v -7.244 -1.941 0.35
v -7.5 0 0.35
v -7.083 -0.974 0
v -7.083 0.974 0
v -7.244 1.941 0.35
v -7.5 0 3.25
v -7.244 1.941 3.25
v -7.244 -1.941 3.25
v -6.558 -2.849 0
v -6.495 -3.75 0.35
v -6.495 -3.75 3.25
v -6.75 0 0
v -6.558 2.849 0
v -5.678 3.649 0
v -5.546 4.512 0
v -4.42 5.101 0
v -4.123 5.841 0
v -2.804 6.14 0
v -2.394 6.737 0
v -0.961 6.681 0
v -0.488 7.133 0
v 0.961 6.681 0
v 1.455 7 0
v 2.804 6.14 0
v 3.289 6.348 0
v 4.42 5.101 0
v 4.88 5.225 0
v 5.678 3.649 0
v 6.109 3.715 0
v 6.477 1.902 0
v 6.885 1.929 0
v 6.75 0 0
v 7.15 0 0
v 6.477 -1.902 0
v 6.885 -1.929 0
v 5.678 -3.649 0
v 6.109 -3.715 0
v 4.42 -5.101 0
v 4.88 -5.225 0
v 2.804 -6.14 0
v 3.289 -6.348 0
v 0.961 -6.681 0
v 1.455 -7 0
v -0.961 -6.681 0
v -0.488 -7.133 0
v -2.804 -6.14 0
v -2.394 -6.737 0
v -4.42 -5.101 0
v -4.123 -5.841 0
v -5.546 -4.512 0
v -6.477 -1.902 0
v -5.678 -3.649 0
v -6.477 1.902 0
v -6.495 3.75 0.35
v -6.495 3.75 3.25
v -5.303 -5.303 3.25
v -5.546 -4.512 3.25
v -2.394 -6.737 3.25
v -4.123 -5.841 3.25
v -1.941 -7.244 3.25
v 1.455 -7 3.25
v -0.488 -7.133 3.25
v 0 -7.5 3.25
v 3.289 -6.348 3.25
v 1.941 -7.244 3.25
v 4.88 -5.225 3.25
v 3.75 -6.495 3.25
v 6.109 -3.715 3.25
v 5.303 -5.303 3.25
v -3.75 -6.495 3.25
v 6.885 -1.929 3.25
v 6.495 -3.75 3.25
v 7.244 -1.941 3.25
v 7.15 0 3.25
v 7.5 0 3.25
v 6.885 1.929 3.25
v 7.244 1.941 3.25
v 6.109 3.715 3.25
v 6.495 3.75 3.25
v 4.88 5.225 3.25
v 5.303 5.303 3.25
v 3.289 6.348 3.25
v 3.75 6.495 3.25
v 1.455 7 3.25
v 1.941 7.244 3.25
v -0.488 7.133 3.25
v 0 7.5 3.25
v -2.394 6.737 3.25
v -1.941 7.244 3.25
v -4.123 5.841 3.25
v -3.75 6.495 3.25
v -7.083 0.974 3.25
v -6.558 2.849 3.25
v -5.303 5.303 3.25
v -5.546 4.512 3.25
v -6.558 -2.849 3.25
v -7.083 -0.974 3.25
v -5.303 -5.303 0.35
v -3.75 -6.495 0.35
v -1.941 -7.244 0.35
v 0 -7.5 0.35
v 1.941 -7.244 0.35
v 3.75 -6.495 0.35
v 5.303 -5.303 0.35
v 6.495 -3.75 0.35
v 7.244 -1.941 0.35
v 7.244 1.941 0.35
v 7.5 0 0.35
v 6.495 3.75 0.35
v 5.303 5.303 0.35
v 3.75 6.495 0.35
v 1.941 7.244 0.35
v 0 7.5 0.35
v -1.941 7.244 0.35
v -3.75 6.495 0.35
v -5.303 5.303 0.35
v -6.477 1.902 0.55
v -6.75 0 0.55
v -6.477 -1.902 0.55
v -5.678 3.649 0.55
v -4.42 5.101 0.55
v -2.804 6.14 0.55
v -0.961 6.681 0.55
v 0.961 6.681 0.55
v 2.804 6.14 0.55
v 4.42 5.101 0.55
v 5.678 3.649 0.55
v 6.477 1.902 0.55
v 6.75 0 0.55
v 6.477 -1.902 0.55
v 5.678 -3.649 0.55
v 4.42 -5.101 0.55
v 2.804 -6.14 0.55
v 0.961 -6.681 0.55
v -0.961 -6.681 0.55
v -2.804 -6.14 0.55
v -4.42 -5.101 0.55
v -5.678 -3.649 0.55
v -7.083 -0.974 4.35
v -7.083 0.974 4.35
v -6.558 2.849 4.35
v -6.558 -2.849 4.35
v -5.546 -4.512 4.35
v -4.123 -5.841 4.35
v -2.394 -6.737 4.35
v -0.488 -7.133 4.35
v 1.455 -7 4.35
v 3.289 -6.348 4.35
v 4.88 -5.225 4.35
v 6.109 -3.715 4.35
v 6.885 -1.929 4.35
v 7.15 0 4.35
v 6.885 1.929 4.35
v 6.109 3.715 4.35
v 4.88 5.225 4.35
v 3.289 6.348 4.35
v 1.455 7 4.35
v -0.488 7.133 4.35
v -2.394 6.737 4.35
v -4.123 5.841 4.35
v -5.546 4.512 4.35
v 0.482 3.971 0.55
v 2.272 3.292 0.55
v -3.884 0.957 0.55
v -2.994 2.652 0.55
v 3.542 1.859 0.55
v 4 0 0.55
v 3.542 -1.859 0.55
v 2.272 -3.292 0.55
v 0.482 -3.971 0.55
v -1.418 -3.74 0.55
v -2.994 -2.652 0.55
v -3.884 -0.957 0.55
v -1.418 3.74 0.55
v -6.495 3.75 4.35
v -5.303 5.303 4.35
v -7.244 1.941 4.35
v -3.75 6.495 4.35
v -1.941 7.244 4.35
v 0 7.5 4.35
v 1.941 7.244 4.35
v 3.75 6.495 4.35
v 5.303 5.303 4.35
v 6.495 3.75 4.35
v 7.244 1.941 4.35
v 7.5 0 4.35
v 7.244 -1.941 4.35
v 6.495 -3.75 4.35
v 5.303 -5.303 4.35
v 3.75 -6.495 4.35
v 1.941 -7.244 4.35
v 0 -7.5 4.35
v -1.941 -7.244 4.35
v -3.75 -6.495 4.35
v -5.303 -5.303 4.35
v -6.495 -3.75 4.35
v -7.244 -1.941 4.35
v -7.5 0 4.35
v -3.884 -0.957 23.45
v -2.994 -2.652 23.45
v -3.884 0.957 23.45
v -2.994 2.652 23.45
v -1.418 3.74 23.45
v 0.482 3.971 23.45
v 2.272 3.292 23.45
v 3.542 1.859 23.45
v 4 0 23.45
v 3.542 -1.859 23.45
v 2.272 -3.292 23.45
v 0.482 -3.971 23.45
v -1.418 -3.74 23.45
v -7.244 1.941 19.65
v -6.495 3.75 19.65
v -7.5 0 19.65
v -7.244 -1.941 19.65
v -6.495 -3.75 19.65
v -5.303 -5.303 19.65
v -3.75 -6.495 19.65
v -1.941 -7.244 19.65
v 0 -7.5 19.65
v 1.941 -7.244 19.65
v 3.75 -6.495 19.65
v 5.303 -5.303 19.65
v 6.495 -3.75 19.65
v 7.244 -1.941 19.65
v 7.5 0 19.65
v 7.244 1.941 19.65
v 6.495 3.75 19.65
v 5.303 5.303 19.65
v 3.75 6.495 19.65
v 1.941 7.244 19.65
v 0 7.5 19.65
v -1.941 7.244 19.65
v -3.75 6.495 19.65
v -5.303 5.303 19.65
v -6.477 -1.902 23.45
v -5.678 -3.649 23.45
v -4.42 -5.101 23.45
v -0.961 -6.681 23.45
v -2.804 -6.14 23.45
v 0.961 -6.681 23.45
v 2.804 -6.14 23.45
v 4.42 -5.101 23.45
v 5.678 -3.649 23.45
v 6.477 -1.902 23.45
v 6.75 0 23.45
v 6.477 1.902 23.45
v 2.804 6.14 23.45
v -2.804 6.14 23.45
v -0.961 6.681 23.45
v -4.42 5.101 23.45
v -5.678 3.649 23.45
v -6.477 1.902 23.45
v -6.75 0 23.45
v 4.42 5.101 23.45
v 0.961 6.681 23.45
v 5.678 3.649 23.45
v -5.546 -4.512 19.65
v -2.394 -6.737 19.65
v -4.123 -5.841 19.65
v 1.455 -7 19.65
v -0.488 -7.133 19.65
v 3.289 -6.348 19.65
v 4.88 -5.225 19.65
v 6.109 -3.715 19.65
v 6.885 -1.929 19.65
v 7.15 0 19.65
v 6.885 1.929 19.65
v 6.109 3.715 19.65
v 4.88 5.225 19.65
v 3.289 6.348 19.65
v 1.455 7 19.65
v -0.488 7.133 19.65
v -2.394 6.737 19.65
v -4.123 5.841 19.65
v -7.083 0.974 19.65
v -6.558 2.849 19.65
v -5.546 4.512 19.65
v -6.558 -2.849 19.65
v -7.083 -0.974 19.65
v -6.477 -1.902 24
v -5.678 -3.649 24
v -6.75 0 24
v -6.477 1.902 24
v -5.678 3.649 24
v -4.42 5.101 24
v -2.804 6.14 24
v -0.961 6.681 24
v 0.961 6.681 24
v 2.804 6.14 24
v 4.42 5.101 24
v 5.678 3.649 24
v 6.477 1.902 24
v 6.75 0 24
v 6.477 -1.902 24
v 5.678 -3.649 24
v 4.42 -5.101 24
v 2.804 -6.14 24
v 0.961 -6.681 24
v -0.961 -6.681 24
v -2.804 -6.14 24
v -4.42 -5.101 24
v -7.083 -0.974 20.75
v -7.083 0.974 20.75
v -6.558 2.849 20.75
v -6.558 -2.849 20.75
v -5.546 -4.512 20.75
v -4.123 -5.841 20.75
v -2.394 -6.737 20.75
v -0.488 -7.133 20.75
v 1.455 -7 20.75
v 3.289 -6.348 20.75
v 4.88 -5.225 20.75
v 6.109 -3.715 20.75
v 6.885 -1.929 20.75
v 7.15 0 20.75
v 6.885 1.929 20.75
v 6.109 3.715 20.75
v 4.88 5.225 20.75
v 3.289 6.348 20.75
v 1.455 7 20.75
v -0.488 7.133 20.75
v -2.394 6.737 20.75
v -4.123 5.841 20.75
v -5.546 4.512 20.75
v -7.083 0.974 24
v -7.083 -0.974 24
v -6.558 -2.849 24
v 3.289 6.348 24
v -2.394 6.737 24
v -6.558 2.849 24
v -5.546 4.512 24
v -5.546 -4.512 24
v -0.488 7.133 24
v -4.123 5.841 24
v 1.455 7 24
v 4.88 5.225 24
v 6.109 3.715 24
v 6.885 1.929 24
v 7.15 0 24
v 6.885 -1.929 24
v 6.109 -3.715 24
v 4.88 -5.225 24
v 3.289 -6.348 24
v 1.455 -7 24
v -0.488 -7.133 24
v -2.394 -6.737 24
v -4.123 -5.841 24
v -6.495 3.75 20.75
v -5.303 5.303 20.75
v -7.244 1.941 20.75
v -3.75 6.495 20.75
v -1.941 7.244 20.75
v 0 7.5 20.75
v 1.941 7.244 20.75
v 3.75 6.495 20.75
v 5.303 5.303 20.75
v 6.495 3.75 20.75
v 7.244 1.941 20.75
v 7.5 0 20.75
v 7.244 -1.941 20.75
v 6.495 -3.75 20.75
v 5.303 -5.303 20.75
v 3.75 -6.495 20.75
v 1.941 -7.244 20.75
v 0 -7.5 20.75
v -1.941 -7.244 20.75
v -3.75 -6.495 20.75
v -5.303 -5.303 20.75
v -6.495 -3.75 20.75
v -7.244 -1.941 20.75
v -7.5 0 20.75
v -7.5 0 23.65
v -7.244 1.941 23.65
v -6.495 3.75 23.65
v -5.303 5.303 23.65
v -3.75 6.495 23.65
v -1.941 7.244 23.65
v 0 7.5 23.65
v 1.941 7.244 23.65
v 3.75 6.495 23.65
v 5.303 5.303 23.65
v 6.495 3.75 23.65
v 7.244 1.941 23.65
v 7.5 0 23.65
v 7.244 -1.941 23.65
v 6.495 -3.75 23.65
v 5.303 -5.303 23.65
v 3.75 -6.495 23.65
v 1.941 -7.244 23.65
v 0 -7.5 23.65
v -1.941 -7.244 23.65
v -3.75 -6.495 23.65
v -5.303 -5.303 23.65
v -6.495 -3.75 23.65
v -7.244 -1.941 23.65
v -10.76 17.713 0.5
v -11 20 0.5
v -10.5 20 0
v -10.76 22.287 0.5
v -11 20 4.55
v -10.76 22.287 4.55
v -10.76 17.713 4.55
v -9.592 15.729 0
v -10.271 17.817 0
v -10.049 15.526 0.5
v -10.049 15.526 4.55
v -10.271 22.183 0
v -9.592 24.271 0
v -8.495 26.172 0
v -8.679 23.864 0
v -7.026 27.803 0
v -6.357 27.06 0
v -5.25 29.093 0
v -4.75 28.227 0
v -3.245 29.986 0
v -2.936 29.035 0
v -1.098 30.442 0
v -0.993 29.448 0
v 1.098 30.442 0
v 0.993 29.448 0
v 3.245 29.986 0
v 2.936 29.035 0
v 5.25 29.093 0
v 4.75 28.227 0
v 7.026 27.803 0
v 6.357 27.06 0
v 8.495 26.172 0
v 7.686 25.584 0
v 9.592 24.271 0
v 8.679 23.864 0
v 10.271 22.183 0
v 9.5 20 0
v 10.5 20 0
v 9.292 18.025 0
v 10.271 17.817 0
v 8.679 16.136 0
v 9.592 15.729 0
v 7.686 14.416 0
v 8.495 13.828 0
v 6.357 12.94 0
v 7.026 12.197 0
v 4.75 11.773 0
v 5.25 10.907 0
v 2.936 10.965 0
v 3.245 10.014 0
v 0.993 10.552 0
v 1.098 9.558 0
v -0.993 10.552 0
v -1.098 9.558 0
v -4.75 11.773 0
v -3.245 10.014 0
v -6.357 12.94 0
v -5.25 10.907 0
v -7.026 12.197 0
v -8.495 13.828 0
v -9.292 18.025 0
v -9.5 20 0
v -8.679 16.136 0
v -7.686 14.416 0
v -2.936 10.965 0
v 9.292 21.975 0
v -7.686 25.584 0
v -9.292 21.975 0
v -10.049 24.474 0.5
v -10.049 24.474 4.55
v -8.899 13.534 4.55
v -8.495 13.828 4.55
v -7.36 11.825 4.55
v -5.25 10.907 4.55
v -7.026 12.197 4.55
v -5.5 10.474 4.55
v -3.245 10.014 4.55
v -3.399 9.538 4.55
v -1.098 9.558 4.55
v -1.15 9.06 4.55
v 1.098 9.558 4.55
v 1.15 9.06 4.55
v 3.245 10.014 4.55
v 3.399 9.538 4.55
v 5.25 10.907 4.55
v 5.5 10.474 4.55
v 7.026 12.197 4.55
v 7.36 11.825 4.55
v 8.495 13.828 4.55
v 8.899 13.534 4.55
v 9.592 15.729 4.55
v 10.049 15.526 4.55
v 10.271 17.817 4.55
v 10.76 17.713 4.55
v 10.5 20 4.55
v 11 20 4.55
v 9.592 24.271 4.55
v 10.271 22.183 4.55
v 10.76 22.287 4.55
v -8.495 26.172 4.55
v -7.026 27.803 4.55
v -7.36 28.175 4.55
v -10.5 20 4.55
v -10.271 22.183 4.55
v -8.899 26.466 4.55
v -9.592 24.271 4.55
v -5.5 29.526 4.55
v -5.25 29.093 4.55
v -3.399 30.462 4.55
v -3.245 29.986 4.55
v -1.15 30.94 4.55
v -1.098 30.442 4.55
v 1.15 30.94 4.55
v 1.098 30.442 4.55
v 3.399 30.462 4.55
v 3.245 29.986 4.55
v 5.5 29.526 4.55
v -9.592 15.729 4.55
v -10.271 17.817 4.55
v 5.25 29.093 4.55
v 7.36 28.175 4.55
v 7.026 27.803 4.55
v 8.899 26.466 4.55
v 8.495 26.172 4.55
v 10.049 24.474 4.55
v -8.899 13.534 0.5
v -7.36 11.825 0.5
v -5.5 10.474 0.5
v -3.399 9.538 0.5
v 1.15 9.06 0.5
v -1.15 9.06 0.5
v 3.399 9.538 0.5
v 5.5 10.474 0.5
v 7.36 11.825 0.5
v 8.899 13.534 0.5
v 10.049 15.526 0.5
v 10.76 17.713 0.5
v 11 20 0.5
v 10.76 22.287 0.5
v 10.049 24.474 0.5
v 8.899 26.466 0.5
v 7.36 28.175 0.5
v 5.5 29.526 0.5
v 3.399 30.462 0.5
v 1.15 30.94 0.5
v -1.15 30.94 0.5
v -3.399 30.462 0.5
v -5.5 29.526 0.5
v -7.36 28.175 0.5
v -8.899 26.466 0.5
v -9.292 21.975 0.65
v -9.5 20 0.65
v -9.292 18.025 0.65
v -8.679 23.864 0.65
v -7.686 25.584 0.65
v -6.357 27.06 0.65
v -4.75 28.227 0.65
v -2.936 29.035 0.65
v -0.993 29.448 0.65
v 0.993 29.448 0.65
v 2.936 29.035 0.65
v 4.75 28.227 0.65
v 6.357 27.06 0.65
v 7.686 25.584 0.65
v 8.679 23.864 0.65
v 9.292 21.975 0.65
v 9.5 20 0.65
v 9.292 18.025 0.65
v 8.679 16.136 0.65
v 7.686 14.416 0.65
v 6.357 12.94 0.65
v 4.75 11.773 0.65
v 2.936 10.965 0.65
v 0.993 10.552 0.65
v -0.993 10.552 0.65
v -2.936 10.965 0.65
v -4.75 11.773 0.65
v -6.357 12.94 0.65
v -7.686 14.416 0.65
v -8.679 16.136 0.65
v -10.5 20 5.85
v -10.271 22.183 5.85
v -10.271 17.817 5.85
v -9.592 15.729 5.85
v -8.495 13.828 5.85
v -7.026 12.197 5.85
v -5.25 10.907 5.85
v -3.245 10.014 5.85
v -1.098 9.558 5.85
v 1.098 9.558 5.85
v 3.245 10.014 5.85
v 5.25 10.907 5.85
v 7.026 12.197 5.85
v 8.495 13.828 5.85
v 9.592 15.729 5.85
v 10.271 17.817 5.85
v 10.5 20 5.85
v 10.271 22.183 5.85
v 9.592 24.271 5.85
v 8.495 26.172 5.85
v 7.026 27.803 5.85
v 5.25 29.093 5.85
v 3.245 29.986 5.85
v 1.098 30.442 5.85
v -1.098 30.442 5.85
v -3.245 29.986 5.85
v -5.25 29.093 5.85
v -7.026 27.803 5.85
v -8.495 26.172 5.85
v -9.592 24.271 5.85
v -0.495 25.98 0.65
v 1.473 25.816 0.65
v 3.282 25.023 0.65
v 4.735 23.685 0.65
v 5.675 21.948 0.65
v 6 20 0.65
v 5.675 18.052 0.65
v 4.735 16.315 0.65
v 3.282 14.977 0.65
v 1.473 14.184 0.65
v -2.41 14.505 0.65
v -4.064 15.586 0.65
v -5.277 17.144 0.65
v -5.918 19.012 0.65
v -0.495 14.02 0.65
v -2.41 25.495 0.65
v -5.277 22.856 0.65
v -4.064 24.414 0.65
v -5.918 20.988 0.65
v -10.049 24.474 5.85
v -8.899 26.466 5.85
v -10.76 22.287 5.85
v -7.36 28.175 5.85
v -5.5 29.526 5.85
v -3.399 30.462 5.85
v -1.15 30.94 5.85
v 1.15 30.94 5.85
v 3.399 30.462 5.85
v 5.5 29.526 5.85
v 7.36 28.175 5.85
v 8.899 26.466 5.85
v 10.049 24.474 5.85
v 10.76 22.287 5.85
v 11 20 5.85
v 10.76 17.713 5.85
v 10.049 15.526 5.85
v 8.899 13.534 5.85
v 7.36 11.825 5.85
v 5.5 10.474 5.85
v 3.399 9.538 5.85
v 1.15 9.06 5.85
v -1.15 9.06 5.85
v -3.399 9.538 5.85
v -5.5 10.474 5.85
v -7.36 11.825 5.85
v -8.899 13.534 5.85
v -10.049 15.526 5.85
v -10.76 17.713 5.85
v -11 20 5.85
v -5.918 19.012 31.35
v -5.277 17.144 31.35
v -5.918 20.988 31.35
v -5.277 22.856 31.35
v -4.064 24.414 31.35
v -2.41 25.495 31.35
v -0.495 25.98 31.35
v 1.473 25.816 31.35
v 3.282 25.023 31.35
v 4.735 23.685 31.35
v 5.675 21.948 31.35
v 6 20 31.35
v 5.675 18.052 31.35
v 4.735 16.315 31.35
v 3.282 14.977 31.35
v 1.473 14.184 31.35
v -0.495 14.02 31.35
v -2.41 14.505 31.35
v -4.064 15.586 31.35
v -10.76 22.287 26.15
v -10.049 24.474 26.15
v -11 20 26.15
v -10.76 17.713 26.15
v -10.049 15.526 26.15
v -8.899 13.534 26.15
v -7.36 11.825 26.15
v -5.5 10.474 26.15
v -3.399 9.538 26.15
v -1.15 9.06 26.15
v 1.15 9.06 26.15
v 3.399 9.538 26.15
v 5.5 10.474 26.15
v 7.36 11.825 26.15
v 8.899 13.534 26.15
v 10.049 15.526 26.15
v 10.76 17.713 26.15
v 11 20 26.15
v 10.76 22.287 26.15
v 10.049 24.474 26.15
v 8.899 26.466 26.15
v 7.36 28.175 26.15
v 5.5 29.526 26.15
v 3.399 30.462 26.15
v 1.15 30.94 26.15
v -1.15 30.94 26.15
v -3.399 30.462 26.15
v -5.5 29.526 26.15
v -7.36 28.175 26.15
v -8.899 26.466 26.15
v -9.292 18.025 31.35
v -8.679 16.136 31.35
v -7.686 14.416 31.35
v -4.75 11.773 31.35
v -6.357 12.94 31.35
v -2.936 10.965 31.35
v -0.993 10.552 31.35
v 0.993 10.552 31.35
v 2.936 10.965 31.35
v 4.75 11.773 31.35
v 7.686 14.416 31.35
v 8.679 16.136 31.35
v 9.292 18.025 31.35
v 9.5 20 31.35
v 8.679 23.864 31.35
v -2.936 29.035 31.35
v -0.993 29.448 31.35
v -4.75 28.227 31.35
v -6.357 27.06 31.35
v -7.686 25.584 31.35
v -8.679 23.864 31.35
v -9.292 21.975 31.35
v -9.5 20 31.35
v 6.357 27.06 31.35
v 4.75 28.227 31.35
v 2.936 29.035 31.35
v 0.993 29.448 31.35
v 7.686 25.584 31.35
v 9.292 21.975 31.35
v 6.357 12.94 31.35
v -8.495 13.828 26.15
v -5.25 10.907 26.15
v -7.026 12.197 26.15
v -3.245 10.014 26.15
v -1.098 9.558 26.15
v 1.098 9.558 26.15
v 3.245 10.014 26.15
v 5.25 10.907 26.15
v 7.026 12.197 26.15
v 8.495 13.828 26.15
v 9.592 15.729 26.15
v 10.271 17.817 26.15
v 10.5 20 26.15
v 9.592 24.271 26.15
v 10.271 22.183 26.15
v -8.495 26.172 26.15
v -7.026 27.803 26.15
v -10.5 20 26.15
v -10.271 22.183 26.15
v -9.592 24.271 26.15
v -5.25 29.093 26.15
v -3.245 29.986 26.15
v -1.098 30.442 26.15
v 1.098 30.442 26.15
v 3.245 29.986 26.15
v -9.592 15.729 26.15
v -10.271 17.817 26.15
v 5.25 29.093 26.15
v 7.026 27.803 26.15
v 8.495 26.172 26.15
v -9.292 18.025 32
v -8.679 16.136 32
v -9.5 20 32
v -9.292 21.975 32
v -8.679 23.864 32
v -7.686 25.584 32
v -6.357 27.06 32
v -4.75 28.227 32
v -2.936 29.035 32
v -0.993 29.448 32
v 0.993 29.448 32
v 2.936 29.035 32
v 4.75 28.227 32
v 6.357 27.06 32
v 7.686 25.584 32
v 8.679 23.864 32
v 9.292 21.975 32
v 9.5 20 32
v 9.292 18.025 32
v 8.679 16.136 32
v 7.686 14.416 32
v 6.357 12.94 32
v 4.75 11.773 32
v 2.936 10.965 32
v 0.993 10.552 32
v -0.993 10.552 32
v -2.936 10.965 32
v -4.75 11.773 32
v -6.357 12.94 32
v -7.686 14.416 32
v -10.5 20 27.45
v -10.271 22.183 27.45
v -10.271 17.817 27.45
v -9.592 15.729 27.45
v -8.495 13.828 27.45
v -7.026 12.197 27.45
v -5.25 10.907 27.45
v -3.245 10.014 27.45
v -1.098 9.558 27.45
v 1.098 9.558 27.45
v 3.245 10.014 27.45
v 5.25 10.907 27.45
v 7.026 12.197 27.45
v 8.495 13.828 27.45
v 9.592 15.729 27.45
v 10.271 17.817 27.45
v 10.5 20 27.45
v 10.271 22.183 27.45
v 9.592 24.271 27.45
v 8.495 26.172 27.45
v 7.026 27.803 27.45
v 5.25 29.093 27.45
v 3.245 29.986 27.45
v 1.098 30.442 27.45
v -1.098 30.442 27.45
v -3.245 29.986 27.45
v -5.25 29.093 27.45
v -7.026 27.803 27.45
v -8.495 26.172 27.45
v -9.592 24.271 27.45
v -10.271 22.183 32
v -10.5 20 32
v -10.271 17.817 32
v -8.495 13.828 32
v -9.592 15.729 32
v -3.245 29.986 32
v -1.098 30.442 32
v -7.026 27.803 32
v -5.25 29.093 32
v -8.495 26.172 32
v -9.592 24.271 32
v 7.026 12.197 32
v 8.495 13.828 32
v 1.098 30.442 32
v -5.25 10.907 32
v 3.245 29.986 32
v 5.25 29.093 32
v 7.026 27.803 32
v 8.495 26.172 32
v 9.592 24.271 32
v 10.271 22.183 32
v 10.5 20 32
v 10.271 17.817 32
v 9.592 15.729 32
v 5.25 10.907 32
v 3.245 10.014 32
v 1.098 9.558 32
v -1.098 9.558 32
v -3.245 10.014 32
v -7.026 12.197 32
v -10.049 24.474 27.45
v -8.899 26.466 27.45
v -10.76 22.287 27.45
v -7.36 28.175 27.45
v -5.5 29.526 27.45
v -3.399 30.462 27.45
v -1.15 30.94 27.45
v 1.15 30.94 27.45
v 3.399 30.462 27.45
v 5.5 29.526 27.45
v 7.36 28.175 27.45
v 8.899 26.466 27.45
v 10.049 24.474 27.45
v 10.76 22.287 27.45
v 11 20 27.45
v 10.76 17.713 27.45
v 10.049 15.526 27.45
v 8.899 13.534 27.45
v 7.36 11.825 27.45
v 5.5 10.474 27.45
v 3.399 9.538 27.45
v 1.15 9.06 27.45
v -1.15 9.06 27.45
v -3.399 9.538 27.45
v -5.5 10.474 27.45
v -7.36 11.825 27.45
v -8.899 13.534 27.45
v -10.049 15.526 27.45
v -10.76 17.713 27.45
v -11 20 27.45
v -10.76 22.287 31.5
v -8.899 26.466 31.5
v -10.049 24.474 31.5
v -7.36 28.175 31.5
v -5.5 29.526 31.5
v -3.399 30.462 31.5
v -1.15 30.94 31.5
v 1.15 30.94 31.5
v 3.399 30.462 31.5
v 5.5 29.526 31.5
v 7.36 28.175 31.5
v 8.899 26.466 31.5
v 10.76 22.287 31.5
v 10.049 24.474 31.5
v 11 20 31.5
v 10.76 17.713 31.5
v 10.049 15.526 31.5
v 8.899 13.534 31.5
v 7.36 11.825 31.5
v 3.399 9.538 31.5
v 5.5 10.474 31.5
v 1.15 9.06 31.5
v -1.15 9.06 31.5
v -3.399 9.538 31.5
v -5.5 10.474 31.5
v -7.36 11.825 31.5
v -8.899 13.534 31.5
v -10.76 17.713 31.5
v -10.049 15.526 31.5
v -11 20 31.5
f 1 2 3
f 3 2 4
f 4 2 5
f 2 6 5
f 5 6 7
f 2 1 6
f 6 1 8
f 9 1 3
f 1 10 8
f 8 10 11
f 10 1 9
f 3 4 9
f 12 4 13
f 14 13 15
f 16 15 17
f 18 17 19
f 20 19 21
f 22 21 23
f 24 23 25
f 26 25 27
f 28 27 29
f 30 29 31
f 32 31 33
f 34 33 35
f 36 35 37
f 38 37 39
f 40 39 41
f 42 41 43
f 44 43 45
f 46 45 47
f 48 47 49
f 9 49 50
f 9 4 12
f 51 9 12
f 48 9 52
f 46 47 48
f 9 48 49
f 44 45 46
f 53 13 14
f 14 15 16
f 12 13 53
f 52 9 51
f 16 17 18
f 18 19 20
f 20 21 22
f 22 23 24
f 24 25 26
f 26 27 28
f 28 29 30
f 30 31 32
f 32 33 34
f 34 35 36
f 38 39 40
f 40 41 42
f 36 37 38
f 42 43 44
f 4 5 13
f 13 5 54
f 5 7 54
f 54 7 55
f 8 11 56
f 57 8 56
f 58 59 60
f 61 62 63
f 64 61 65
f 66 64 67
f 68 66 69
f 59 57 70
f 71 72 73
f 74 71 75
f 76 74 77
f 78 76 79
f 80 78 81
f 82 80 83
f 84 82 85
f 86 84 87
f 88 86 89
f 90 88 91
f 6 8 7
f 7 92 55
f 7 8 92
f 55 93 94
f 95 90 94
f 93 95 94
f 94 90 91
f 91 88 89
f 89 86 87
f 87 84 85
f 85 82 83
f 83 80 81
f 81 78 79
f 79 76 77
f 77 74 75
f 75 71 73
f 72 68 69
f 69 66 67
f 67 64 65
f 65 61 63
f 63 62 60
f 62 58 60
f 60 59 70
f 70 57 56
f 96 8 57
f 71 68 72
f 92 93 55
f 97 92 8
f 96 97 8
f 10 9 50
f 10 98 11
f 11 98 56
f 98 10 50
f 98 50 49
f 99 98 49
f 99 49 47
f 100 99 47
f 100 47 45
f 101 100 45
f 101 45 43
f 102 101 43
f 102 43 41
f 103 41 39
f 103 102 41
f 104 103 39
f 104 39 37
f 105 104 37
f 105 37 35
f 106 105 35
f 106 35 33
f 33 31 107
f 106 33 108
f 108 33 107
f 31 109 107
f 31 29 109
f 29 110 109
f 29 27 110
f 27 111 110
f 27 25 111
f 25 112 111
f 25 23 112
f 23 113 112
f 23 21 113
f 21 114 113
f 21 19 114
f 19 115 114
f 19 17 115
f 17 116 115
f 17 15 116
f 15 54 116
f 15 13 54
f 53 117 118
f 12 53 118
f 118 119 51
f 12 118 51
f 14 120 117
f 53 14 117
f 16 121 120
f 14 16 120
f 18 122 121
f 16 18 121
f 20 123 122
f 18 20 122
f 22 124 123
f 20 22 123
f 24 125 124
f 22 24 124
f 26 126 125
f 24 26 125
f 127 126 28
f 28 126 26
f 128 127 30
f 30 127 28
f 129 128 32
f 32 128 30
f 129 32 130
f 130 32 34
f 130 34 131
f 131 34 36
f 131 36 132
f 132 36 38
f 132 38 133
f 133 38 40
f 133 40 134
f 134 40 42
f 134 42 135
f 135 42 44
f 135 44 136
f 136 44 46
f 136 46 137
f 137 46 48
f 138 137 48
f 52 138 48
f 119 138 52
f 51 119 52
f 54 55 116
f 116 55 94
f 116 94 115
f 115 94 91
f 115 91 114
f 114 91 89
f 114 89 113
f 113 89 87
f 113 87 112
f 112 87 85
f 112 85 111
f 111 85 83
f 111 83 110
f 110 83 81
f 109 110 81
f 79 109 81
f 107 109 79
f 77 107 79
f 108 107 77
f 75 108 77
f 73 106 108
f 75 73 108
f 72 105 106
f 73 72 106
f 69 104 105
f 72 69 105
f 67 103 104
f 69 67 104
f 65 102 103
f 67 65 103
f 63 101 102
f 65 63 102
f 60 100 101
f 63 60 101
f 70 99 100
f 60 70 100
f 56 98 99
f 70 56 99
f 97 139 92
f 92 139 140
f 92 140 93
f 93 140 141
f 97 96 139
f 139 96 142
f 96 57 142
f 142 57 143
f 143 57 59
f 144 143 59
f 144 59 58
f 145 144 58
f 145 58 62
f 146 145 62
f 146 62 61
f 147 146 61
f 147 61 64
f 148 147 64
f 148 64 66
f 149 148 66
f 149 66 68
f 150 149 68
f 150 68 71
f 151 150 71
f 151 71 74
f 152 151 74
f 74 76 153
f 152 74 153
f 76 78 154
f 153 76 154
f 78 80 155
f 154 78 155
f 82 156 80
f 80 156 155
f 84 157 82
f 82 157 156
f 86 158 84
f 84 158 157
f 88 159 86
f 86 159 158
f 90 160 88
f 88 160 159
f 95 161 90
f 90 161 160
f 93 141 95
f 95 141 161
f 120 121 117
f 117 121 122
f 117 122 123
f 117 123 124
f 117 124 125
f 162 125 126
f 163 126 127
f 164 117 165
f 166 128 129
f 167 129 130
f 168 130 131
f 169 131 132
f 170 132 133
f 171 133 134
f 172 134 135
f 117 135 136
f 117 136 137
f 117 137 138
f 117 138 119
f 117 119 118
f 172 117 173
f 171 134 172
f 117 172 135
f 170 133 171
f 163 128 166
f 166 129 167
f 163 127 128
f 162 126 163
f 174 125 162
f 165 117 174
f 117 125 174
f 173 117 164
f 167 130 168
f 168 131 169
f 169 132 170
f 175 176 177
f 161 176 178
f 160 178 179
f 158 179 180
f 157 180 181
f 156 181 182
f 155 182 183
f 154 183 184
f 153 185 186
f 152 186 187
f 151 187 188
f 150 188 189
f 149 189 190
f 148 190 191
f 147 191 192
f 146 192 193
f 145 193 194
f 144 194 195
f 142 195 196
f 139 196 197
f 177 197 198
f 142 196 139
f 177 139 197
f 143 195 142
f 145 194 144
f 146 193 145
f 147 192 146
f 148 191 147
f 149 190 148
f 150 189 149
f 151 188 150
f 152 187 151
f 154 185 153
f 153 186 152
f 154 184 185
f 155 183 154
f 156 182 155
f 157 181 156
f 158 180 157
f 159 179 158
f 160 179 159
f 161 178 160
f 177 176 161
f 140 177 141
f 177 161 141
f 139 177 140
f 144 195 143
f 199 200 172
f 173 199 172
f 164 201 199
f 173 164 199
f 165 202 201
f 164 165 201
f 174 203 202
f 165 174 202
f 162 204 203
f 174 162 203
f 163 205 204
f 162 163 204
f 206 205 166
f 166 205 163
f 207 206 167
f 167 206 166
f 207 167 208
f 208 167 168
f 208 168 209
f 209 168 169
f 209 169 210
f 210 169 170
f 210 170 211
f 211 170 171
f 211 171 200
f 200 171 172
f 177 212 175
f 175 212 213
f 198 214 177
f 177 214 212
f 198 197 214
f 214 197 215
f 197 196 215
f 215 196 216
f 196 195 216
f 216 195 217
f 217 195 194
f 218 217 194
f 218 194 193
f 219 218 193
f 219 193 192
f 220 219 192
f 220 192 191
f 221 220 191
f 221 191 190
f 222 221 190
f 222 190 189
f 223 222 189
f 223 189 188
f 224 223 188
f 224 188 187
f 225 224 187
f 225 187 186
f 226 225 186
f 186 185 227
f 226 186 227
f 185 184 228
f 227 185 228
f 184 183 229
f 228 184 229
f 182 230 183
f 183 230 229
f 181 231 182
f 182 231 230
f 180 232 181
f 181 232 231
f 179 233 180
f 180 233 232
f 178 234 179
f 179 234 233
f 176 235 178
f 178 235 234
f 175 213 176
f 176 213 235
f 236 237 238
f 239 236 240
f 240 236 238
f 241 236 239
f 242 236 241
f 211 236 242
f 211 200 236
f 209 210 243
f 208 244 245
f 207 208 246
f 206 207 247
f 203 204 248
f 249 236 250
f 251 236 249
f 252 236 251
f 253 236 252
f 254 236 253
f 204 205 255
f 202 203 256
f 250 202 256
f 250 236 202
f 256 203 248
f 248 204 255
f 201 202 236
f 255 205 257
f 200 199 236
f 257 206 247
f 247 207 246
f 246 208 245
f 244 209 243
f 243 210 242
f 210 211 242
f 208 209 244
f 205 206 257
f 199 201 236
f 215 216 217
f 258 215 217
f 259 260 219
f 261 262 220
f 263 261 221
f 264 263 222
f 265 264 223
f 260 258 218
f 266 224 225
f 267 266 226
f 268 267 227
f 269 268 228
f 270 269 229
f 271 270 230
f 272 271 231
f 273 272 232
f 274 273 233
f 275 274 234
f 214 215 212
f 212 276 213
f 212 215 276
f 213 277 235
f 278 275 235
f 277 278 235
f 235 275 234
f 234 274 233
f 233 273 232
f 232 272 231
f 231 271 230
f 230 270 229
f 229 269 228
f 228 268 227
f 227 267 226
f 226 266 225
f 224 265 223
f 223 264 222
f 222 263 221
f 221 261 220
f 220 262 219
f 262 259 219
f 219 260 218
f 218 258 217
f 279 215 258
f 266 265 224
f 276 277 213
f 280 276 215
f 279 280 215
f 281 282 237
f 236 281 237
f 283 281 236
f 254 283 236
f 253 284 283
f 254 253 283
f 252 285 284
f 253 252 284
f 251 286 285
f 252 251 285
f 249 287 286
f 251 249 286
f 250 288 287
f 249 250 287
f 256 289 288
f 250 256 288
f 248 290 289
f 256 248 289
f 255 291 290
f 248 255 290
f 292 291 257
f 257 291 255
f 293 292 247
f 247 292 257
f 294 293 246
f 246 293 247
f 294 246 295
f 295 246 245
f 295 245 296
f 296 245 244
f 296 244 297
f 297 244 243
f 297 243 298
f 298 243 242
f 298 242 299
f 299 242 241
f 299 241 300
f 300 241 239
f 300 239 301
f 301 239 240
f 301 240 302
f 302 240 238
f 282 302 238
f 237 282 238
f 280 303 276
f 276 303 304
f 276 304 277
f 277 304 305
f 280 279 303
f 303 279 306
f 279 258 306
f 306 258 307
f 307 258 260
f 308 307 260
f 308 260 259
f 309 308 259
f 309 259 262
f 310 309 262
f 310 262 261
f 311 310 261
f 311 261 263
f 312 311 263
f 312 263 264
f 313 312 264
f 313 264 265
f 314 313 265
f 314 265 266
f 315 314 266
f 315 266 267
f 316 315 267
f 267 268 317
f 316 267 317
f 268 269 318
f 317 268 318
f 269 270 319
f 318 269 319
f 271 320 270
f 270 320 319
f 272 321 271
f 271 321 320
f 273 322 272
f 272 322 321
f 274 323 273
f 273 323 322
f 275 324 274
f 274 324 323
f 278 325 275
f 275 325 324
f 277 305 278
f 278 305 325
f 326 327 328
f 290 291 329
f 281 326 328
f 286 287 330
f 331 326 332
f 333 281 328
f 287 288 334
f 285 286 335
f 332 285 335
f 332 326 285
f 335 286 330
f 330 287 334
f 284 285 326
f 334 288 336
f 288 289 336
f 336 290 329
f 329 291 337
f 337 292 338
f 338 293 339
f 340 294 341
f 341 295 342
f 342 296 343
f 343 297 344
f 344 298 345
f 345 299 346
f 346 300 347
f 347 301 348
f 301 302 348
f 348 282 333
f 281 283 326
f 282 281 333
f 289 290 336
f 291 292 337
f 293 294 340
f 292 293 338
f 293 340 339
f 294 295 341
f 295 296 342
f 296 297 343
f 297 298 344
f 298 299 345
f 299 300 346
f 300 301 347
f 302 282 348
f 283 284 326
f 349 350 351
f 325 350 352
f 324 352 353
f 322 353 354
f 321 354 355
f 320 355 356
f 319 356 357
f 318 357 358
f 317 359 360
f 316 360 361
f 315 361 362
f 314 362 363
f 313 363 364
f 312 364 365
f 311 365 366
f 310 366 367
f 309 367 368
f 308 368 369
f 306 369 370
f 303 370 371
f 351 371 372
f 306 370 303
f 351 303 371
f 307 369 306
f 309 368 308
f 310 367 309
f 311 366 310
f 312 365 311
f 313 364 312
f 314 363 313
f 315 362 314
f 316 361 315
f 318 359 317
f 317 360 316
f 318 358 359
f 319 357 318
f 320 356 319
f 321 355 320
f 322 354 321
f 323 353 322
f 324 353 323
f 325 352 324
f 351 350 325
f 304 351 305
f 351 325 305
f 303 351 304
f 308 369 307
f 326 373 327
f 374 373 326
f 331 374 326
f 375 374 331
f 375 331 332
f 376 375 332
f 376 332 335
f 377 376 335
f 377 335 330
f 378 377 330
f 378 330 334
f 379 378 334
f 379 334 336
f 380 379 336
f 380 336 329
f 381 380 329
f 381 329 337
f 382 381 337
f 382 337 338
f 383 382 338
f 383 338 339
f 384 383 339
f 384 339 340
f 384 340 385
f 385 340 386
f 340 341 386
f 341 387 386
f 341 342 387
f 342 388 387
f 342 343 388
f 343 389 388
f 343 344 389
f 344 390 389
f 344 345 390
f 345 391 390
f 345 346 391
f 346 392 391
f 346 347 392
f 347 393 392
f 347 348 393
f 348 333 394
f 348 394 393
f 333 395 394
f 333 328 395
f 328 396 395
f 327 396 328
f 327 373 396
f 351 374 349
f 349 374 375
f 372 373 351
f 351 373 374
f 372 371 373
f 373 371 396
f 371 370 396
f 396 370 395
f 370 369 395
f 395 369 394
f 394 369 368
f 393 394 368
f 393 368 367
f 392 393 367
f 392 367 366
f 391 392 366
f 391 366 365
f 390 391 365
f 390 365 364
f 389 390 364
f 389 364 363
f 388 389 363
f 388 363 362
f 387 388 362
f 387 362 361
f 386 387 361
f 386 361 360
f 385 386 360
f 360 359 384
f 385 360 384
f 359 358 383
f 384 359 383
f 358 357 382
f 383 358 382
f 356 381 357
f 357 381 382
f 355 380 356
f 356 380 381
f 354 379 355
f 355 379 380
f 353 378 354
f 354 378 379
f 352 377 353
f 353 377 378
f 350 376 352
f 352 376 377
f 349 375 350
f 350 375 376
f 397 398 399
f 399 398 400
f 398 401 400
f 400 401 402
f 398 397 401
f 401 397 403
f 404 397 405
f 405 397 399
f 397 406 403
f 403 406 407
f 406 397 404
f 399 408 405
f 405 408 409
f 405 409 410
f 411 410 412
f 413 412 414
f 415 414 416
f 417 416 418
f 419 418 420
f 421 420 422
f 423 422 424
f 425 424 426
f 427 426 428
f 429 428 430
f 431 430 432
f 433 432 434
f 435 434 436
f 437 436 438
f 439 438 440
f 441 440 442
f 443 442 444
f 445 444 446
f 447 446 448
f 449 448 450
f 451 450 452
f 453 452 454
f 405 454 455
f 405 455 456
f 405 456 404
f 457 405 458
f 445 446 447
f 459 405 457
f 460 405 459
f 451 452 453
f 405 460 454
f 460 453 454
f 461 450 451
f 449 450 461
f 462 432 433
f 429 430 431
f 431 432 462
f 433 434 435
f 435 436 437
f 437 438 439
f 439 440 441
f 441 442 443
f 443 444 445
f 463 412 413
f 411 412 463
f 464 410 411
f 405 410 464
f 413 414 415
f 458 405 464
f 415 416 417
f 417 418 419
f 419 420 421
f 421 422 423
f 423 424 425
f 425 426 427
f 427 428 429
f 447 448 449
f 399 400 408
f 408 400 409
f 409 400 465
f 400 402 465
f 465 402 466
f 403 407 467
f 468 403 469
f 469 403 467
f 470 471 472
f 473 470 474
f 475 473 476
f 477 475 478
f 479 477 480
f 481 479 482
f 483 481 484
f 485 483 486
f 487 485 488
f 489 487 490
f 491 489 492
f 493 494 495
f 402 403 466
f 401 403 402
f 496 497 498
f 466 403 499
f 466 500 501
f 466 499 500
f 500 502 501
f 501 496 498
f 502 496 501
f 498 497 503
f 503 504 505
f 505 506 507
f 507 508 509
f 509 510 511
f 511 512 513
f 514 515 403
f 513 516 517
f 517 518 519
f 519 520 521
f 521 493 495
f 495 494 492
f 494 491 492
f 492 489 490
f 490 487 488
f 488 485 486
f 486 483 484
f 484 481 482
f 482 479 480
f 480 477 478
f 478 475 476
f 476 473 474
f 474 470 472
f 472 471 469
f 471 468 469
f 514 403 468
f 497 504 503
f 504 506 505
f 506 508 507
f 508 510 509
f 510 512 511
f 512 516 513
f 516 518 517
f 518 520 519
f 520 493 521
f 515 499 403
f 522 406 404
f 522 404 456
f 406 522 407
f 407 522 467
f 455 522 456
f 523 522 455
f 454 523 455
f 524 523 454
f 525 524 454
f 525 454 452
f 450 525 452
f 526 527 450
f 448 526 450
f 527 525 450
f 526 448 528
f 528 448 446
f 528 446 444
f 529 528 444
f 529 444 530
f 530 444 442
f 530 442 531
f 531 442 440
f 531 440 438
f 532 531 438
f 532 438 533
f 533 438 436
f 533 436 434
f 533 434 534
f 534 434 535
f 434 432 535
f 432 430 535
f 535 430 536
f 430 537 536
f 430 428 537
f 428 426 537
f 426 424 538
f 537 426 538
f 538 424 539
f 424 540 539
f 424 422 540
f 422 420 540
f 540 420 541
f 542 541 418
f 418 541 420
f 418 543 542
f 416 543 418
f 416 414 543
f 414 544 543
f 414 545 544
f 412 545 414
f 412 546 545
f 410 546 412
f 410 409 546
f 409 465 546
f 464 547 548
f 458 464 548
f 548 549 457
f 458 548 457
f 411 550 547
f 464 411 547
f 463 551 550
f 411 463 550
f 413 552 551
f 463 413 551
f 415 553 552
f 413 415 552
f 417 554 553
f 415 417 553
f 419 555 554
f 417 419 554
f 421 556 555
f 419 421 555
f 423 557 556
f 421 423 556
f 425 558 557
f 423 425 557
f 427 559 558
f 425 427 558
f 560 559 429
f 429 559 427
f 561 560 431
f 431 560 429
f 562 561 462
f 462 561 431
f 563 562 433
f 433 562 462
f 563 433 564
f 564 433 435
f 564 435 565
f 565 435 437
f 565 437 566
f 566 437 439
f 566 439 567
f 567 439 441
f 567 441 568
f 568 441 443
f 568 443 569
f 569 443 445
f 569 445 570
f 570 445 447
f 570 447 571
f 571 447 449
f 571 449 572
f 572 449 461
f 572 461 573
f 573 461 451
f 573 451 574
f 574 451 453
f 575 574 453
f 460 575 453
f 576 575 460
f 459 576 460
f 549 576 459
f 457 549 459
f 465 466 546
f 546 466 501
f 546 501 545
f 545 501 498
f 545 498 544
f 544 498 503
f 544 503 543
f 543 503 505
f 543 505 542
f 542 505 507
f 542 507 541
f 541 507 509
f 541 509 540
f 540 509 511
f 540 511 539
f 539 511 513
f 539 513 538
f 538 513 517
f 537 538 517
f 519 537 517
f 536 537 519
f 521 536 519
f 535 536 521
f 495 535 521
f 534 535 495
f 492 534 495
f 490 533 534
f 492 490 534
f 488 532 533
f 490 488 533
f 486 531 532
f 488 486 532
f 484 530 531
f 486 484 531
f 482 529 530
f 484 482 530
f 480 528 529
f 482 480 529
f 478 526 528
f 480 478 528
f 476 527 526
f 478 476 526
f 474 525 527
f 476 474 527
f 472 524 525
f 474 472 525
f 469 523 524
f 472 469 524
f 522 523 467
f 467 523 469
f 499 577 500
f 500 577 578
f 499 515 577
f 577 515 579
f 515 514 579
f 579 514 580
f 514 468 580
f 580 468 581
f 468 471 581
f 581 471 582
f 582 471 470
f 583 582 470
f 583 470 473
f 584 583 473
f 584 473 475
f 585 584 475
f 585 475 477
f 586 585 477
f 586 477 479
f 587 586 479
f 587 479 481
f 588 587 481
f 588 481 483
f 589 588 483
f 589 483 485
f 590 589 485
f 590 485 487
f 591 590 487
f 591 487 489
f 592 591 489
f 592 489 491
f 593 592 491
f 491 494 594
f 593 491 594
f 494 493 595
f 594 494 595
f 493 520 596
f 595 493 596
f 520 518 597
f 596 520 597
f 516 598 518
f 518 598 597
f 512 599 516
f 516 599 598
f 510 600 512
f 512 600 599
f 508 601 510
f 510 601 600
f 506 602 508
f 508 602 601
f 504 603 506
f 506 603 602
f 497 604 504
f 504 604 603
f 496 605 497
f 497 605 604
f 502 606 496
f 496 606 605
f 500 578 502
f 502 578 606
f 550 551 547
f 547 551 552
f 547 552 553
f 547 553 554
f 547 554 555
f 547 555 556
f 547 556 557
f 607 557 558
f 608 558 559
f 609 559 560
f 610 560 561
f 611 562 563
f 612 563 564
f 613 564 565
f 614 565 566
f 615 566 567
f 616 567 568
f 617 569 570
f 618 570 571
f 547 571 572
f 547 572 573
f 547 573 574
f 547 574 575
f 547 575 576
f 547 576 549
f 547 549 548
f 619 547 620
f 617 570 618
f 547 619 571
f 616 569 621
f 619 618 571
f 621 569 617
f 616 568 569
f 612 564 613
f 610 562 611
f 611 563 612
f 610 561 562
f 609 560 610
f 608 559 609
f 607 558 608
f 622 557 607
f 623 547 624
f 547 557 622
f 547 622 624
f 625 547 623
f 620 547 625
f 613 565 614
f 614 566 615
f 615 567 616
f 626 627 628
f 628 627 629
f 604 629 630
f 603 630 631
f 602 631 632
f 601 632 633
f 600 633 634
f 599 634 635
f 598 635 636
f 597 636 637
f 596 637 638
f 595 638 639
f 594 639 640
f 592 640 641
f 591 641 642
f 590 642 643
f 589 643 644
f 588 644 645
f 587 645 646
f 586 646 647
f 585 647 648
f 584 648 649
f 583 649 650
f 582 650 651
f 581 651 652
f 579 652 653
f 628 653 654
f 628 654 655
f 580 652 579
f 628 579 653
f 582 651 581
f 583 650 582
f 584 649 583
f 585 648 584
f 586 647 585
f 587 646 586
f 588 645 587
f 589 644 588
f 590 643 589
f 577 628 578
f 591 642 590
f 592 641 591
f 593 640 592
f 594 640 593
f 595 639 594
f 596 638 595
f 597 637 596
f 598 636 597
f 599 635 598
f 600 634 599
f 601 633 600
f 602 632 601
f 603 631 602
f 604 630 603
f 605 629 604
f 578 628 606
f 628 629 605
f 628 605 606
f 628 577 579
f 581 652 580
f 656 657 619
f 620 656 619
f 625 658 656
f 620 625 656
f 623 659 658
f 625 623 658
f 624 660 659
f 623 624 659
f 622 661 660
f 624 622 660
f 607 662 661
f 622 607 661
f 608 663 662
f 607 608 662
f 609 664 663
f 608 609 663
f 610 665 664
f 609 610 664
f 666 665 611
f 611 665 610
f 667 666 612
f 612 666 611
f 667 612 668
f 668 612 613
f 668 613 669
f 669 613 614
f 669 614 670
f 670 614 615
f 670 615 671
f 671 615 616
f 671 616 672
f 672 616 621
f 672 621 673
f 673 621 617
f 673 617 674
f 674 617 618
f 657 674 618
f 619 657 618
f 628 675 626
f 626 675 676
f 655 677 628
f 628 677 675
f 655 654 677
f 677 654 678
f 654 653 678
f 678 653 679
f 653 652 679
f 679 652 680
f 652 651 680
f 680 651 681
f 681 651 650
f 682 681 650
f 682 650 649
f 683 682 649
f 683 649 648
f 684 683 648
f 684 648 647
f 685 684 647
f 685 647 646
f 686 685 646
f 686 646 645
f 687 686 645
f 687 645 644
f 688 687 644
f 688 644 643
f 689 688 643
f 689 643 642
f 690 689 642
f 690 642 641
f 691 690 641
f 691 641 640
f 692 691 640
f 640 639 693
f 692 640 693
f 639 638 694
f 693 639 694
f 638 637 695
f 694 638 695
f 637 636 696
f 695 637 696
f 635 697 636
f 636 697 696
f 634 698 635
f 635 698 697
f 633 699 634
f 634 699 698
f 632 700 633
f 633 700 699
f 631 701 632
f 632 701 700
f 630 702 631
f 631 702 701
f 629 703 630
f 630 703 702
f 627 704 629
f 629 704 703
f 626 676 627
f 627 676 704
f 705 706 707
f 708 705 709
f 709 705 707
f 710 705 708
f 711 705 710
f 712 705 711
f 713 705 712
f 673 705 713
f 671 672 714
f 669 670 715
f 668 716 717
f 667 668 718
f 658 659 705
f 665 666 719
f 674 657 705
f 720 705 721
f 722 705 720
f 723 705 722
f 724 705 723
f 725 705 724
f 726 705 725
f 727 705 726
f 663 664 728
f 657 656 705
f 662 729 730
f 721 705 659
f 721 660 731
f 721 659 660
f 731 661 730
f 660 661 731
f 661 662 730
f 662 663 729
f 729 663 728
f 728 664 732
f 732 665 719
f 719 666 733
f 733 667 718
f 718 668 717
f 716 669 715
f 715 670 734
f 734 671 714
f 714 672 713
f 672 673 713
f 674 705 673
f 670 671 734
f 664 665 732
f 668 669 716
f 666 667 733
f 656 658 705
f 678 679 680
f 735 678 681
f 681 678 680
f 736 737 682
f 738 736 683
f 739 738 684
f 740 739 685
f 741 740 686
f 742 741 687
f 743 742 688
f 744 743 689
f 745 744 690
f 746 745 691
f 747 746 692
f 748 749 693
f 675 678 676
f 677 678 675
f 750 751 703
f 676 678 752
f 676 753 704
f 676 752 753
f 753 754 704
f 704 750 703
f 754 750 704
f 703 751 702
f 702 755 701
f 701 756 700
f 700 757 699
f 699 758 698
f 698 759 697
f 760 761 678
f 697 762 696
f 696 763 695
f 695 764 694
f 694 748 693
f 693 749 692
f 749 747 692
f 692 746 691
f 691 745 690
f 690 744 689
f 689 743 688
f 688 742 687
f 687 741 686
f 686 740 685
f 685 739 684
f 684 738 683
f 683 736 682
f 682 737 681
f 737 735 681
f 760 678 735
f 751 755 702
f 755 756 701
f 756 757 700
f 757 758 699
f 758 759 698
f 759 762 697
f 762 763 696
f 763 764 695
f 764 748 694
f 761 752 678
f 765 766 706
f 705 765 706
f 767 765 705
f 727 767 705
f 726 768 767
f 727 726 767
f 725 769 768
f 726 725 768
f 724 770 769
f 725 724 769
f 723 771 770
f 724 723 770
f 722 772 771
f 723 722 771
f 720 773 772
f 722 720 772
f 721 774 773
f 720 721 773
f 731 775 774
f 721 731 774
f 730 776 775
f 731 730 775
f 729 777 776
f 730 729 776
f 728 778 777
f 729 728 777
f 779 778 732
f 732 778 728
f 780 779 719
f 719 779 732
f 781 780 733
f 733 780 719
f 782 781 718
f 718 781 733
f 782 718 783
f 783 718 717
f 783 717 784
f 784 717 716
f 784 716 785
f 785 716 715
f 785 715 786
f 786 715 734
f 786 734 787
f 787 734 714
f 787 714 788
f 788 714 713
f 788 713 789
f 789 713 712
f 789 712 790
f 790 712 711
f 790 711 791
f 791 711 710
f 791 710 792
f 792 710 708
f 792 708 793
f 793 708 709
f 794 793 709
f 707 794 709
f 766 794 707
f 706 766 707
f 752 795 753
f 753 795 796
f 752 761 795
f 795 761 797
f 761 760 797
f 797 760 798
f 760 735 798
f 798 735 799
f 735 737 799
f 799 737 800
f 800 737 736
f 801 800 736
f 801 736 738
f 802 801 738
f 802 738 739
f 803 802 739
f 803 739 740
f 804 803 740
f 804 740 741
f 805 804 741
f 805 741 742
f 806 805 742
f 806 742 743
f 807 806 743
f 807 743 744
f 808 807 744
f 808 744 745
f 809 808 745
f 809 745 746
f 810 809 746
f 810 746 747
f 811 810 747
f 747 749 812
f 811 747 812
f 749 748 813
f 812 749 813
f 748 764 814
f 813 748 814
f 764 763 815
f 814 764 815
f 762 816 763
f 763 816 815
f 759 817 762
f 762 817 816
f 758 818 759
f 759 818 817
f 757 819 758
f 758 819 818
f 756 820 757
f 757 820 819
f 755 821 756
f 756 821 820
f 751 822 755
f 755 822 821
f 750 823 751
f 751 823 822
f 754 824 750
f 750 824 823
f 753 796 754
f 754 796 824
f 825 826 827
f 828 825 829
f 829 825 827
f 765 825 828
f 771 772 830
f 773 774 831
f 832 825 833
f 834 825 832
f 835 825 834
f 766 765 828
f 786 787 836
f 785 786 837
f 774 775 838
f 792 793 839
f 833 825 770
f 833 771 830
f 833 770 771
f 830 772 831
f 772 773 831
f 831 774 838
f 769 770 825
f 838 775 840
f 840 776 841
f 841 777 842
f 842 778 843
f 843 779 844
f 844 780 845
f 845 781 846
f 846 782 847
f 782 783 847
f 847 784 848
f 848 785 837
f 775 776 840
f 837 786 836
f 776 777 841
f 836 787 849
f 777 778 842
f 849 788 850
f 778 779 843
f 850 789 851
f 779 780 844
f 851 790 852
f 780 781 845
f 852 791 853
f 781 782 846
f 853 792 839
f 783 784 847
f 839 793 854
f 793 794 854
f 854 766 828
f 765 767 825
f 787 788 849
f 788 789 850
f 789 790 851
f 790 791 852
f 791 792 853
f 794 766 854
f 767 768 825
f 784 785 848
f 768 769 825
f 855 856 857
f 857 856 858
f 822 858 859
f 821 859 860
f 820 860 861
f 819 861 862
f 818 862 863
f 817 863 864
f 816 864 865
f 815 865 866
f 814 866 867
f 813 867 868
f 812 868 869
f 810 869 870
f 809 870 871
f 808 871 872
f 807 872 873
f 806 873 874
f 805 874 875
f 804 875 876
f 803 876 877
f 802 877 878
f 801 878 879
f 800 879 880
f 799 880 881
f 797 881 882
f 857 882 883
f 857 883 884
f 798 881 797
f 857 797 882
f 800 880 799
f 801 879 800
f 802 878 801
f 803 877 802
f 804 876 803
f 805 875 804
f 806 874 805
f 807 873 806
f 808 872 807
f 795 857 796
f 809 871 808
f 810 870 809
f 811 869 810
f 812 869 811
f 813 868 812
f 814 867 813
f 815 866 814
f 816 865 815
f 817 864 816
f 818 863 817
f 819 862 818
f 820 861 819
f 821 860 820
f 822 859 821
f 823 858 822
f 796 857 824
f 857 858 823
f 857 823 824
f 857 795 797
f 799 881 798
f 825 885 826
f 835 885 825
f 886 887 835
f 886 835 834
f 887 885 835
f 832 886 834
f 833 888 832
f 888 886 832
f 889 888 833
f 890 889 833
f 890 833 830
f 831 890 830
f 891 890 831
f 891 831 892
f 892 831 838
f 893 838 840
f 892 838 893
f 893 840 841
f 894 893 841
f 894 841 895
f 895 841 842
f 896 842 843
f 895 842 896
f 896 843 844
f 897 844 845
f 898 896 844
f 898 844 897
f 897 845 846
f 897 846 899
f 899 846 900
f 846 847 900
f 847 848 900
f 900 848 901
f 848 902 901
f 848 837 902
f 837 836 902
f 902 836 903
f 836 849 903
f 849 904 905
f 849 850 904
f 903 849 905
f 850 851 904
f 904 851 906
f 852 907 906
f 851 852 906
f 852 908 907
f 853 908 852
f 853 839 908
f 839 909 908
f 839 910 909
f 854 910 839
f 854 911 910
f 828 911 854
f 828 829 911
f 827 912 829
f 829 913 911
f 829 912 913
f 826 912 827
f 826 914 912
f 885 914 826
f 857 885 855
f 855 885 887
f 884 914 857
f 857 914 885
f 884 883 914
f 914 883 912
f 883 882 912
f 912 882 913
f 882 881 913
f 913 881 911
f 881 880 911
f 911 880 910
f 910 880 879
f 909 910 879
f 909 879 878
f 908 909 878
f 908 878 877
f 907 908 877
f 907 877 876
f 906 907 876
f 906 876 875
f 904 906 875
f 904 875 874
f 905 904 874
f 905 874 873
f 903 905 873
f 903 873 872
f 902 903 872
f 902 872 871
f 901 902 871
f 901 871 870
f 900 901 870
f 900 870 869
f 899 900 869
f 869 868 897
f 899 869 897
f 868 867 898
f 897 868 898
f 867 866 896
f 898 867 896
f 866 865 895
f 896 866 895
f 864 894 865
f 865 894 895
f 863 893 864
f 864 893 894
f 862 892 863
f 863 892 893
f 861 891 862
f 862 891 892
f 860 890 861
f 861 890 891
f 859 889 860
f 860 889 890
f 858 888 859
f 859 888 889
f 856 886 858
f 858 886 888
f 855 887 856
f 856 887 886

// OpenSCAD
// Open SCAD model of linear Bearing LM-8-UU & KB-12-WW

//     LM-8-UU        KB-12-WW
//	D_Int =  8.0	D_Int = 12.0
//	D_Ext = 15.0	D_Ext = 22.0
//	D_1   = 14.3	D_1   = 21.0
//	L     = 24.0	L     = 32.0
//	W     =  1.1	W     =  1.3
//	B     = 17.5	B     = 22.9



module groove(d1, d2, w) {
	difference() {
		cylinder(r=d1/2+1, h=w, center=true);
		cylinder(r=d2/2  , h=w, center=true);
	}
}

module lb(D_Int=8, D_Ext=15, D_1=14.3, L=24, W=1.1, B=17.5) {
	chamf = D_Ext - D_1;
	color([0.8, 0.8, 0.9]) {
	difference() {
		hull() {
			cylinder(r=D_Ext/2, h=L-chamf, center=true);
			cylinder(r=D_1  /2, h=L      , center=true);
		}
		cylinder(r=D_Int/2, h=L+2    , center=true);
		translate([0, 0, B/2-W/2]) groove(D_Ext, D_1, W);
		translate([0, 0,-B/2+W/2]) groove(D_Ext, D_1, W);
		translate([0, 0,     L/2]) groove(D_Ext-(D_Ext-D_Int)/2, 1, W);
		translate([0, 0,    -L/2]) groove(D_Ext-(D_Ext-D_Int)/2, 1, W);
	}
	}
}


module linear_bearing(linear_bearing_type) {
	if(linear_bearing_type == "LM-8-UU") {   //LM-8-UU
		lb(D_Int=8, D_Ext=15, D_1=14.3, L=24, W=1.1, B=17.5);
	}
	else {
		if(linear_bearing_type == "KB-12-WW") {   //KB-12-WW
			lb(D_Int=12, D_Ext=22, D_1=21, L=32, W=1.3, B=22.9);
		}
	}
}


translate([0,  0, 12]) linear_bearing("LM-8-UU" );
translate([0, 20, 16]) linear_bearing("KB-12-WW");
